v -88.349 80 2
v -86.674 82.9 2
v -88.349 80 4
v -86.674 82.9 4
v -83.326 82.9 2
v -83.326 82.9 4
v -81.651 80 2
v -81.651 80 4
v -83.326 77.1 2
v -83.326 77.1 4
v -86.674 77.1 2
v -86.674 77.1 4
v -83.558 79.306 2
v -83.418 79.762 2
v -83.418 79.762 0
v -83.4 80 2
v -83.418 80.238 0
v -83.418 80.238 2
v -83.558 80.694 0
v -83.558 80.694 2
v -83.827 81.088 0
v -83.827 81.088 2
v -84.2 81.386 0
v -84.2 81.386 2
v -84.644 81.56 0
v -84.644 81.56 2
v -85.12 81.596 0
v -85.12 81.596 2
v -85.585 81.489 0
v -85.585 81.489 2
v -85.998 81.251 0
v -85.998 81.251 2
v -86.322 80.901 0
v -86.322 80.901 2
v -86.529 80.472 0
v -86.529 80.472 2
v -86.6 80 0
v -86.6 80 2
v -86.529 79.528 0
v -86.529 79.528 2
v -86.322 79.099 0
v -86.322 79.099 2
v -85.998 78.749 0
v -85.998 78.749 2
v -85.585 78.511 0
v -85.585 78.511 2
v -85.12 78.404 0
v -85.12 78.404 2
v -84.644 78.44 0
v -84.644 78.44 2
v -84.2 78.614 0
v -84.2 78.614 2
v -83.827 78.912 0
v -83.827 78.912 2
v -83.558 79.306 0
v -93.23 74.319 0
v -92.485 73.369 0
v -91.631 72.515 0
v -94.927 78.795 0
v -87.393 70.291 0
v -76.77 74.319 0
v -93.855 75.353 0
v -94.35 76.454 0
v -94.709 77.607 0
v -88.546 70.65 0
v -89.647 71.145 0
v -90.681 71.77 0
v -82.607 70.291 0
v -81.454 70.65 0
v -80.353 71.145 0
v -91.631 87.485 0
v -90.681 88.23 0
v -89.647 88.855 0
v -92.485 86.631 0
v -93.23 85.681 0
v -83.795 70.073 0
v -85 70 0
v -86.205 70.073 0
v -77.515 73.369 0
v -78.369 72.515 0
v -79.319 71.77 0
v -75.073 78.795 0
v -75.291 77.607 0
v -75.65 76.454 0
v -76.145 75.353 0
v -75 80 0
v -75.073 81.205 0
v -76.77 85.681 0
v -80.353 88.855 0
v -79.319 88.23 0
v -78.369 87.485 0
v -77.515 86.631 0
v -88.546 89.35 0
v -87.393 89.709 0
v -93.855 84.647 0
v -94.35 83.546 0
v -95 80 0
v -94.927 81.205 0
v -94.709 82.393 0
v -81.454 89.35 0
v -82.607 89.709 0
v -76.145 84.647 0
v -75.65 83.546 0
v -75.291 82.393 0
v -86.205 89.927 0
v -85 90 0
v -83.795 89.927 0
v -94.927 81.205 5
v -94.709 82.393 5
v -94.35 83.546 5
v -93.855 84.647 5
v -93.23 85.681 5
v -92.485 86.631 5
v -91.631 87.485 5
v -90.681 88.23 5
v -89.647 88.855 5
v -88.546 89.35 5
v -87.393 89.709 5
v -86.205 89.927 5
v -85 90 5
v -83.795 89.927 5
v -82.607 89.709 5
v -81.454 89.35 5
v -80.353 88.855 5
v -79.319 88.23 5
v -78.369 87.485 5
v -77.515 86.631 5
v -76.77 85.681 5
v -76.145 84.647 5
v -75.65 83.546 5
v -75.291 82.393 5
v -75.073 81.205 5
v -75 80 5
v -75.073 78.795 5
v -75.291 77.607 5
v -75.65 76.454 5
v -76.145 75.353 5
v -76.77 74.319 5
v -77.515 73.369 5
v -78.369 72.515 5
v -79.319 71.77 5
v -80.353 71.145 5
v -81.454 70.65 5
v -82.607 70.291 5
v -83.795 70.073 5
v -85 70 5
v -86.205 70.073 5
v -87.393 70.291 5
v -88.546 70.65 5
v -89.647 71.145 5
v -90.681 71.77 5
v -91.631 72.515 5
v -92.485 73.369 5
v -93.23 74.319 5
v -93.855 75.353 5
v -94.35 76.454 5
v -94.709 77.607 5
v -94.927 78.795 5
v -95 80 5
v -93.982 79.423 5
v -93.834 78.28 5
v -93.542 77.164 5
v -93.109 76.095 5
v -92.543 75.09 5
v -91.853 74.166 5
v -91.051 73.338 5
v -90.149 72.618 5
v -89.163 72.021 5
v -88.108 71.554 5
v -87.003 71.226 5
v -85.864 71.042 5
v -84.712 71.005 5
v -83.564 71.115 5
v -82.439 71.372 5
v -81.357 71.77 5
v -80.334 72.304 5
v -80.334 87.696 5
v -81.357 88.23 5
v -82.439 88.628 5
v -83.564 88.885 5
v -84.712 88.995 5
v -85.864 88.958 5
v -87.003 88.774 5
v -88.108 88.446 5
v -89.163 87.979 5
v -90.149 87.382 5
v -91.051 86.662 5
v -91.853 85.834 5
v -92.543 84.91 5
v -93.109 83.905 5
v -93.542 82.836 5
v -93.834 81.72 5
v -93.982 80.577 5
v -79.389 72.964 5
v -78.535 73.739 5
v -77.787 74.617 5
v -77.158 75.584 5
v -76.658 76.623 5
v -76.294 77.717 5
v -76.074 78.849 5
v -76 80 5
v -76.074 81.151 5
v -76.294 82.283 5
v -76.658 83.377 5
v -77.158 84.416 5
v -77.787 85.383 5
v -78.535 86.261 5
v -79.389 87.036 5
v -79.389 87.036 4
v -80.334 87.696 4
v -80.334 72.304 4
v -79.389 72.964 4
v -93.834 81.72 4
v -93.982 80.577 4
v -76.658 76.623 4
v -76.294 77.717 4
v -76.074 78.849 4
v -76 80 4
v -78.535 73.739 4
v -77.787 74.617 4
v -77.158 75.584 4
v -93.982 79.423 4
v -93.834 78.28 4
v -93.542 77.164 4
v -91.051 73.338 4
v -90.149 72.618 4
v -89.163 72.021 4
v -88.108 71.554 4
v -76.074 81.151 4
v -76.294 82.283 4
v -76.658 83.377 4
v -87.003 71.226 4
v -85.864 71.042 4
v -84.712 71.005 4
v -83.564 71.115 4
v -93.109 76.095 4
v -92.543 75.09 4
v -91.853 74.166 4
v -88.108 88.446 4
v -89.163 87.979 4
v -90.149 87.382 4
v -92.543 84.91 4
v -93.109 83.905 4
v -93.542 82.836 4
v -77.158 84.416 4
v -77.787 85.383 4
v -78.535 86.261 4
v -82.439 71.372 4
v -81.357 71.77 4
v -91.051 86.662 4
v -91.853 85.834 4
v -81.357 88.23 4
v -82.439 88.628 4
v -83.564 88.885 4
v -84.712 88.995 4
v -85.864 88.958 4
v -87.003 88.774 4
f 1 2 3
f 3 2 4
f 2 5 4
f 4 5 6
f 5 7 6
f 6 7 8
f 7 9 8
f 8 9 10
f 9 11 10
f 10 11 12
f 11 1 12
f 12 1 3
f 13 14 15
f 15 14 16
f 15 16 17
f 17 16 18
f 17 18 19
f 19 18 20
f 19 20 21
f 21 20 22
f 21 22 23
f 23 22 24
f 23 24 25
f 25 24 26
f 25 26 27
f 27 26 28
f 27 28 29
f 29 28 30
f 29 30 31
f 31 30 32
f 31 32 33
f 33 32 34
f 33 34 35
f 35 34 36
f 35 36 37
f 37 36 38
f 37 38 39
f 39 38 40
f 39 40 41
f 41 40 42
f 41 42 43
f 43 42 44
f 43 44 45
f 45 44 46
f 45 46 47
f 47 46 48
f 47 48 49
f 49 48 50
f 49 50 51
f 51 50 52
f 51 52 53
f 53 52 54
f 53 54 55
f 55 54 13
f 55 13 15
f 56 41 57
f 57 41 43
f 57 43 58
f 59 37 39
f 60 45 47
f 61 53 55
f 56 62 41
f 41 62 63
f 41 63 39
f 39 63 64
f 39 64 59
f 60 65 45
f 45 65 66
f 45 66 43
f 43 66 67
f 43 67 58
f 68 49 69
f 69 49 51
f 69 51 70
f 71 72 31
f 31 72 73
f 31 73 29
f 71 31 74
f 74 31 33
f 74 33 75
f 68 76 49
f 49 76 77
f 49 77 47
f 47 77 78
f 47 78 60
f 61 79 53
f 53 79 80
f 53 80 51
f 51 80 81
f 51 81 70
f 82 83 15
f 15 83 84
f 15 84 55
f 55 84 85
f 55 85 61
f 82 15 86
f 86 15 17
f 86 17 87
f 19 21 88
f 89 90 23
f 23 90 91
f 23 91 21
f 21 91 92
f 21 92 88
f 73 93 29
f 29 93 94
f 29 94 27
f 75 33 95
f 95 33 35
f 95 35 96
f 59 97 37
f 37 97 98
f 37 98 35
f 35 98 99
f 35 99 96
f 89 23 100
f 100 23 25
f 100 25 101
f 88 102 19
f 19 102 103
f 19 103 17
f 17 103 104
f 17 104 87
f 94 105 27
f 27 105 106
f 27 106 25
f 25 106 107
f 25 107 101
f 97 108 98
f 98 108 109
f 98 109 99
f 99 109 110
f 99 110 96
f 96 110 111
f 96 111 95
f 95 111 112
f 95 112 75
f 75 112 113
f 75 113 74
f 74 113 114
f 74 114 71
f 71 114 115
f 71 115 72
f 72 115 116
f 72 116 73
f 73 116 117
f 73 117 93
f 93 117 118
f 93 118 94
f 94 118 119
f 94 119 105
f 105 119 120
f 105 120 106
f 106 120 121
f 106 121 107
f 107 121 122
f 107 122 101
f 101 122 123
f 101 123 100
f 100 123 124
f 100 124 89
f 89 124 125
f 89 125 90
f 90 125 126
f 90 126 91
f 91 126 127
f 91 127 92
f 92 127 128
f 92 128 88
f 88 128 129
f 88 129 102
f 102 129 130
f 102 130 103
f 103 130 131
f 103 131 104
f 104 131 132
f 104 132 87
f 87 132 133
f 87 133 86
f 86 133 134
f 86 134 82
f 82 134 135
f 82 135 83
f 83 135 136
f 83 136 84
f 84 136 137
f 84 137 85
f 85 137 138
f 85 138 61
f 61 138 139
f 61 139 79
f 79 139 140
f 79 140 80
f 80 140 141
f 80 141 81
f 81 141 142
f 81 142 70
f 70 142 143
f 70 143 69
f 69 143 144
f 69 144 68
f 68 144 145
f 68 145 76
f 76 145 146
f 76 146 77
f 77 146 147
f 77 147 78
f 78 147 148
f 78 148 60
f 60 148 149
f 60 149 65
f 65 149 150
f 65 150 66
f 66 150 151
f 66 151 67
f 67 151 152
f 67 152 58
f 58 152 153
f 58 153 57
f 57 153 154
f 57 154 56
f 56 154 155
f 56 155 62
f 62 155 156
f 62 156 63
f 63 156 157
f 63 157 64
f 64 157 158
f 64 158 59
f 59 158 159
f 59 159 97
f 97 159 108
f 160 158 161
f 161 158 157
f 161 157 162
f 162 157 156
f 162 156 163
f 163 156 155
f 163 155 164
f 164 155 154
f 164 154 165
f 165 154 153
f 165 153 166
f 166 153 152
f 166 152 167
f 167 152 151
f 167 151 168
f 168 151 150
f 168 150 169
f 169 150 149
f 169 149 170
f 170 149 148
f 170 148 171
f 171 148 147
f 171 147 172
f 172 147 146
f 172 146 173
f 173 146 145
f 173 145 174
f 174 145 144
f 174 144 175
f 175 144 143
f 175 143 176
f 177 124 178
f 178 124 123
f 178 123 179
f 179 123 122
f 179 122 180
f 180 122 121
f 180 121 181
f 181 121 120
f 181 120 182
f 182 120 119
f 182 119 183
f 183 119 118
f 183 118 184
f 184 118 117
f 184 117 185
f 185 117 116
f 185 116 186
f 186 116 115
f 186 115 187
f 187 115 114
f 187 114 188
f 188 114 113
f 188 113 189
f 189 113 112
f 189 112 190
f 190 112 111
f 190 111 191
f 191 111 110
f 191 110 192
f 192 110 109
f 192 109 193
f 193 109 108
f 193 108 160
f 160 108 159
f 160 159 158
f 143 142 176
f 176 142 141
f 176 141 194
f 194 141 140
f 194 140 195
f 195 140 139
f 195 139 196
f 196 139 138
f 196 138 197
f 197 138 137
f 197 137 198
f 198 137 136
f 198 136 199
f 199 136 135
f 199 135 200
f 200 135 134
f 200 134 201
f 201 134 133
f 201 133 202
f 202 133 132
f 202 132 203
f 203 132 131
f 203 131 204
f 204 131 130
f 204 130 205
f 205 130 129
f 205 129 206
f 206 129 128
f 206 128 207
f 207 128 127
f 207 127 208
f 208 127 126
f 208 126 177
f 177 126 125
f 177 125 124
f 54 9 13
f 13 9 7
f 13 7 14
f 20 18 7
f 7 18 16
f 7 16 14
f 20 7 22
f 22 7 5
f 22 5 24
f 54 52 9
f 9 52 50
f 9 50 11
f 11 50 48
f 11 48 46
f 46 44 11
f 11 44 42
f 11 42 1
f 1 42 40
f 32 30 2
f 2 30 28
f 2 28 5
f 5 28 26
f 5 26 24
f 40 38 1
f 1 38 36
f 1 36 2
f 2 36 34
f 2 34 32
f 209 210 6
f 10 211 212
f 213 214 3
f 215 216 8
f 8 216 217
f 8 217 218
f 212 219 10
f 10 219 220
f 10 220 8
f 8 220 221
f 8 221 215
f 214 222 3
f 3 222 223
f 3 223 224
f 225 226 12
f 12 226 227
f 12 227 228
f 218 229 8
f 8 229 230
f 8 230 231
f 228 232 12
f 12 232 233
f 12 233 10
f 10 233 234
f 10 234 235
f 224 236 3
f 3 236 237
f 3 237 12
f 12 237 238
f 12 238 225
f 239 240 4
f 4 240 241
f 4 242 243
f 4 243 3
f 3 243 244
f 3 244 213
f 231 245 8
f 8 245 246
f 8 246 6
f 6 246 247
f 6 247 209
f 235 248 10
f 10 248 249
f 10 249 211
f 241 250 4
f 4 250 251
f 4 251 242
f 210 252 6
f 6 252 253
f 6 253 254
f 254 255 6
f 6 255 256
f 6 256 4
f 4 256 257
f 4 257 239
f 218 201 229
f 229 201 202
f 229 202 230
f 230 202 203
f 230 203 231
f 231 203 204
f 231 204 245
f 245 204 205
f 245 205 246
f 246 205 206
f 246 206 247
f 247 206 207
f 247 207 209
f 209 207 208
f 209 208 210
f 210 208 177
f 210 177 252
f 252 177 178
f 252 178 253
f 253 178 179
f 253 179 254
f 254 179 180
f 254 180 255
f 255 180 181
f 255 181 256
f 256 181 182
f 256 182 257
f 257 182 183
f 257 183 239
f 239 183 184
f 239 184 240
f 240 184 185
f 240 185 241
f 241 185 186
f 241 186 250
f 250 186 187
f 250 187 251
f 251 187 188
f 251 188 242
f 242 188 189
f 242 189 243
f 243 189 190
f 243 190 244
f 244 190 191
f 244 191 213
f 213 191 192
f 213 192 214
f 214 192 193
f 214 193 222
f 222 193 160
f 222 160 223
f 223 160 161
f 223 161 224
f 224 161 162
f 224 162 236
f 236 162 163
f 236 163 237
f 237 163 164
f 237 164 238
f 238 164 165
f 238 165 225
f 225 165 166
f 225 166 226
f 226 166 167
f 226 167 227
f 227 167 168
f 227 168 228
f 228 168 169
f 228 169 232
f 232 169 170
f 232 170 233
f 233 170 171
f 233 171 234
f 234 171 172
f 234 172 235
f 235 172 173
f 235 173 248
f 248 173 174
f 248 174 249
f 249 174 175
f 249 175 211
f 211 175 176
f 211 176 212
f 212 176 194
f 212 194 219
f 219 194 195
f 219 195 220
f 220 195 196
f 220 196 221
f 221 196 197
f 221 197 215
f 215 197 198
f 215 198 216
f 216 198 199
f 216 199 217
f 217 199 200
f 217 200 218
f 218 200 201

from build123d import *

# Parameters (mm, degrees)
SKETCH1_R           = 10
SKETCH1_R_2         = 1.5
BOSS_EXTRUDE1_DEPTH = 2
SKETCH2_R           = 10
SKETCH2_R_2         = 1.5
BOSS_EXTRUDE2_DEPTH = 3
SKETCH3_R           = 1.6
CUT_EXTRUDE1_DEPTH  = 131.958008585
CUT_EXTRUDE2_DEPTH  = 3
SKETCH5_R           = 9
CUT_EXTRUDE3_DEPTH  = 1


with BuildPart() as part:
    # Sketch1 → Boss-Extrude1 (new body)
    with BuildSketch(Plane.XY):
        with Locations((-85.000000067, 80)):
            Circle(SKETCH1_R)
        with Locations((-85.000000067, 80)):
            Circle(SKETCH1_R_2, mode=Mode.SUBTRACT)
    extrude(amount=BOSS_EXTRUDE1_DEPTH)

    # Sketch2 → Boss-Extrude2 (add)
    # profile 1 of 2: a face of its own
    with BuildSketch(Plane.XY.offset(2)):
        with Locations((-85.000000067, 80)):
            Circle(SKETCH2_R)
        with Locations((-85.000000067, 80)):
            Circle(SKETCH2_R_2, mode=Mode.SUBTRACT)
    # profile 2 of 2: a face of its own
    with BuildSketch(Plane.XY.offset(2)):
        with Locations((-85.000000067, 80)):
            Circle(SKETCH2_R_2)
    extrude(amount=BOSS_EXTRUDE2_DEPTH)

    # Sketch3 → Cut-Extrude1 (cut, through all)
    with BuildSketch(Plane(origin=(0, 0, 0), x_dir=(-1, 0, 0), z_dir=(0, 0, -1))):
        with Locations((85.000000067, 80)):
            Circle(SKETCH3_R)
    extrude(amount=-CUT_EXTRUDE1_DEPTH, mode=Mode.SUBTRACT)

    # Sketch4 → Cut-Extrude2 (cut)
    with BuildSketch(Plane.XY.offset(5)):
        Polygon((-88.348631628, 80), (-86.674315847, 77.1), (-83.325684286, 77.1), (-81.651368505, 80), (-83.325684286, 82.9), (-86.674315847, 82.9), align=None)
    extrude(amount=-CUT_EXTRUDE2_DEPTH, mode=Mode.SUBTRACT)

    # Sketch5 → Cut-Extrude3 (cut)
    with BuildSketch(Plane.XY.offset(5)):
        with Locations((-85.000000067, 80)):
            Circle(SKETCH5_R)
    extrude(amount=-CUT_EXTRUDE3_DEPTH, mode=Mode.SUBTRACT)


solid = part.part
